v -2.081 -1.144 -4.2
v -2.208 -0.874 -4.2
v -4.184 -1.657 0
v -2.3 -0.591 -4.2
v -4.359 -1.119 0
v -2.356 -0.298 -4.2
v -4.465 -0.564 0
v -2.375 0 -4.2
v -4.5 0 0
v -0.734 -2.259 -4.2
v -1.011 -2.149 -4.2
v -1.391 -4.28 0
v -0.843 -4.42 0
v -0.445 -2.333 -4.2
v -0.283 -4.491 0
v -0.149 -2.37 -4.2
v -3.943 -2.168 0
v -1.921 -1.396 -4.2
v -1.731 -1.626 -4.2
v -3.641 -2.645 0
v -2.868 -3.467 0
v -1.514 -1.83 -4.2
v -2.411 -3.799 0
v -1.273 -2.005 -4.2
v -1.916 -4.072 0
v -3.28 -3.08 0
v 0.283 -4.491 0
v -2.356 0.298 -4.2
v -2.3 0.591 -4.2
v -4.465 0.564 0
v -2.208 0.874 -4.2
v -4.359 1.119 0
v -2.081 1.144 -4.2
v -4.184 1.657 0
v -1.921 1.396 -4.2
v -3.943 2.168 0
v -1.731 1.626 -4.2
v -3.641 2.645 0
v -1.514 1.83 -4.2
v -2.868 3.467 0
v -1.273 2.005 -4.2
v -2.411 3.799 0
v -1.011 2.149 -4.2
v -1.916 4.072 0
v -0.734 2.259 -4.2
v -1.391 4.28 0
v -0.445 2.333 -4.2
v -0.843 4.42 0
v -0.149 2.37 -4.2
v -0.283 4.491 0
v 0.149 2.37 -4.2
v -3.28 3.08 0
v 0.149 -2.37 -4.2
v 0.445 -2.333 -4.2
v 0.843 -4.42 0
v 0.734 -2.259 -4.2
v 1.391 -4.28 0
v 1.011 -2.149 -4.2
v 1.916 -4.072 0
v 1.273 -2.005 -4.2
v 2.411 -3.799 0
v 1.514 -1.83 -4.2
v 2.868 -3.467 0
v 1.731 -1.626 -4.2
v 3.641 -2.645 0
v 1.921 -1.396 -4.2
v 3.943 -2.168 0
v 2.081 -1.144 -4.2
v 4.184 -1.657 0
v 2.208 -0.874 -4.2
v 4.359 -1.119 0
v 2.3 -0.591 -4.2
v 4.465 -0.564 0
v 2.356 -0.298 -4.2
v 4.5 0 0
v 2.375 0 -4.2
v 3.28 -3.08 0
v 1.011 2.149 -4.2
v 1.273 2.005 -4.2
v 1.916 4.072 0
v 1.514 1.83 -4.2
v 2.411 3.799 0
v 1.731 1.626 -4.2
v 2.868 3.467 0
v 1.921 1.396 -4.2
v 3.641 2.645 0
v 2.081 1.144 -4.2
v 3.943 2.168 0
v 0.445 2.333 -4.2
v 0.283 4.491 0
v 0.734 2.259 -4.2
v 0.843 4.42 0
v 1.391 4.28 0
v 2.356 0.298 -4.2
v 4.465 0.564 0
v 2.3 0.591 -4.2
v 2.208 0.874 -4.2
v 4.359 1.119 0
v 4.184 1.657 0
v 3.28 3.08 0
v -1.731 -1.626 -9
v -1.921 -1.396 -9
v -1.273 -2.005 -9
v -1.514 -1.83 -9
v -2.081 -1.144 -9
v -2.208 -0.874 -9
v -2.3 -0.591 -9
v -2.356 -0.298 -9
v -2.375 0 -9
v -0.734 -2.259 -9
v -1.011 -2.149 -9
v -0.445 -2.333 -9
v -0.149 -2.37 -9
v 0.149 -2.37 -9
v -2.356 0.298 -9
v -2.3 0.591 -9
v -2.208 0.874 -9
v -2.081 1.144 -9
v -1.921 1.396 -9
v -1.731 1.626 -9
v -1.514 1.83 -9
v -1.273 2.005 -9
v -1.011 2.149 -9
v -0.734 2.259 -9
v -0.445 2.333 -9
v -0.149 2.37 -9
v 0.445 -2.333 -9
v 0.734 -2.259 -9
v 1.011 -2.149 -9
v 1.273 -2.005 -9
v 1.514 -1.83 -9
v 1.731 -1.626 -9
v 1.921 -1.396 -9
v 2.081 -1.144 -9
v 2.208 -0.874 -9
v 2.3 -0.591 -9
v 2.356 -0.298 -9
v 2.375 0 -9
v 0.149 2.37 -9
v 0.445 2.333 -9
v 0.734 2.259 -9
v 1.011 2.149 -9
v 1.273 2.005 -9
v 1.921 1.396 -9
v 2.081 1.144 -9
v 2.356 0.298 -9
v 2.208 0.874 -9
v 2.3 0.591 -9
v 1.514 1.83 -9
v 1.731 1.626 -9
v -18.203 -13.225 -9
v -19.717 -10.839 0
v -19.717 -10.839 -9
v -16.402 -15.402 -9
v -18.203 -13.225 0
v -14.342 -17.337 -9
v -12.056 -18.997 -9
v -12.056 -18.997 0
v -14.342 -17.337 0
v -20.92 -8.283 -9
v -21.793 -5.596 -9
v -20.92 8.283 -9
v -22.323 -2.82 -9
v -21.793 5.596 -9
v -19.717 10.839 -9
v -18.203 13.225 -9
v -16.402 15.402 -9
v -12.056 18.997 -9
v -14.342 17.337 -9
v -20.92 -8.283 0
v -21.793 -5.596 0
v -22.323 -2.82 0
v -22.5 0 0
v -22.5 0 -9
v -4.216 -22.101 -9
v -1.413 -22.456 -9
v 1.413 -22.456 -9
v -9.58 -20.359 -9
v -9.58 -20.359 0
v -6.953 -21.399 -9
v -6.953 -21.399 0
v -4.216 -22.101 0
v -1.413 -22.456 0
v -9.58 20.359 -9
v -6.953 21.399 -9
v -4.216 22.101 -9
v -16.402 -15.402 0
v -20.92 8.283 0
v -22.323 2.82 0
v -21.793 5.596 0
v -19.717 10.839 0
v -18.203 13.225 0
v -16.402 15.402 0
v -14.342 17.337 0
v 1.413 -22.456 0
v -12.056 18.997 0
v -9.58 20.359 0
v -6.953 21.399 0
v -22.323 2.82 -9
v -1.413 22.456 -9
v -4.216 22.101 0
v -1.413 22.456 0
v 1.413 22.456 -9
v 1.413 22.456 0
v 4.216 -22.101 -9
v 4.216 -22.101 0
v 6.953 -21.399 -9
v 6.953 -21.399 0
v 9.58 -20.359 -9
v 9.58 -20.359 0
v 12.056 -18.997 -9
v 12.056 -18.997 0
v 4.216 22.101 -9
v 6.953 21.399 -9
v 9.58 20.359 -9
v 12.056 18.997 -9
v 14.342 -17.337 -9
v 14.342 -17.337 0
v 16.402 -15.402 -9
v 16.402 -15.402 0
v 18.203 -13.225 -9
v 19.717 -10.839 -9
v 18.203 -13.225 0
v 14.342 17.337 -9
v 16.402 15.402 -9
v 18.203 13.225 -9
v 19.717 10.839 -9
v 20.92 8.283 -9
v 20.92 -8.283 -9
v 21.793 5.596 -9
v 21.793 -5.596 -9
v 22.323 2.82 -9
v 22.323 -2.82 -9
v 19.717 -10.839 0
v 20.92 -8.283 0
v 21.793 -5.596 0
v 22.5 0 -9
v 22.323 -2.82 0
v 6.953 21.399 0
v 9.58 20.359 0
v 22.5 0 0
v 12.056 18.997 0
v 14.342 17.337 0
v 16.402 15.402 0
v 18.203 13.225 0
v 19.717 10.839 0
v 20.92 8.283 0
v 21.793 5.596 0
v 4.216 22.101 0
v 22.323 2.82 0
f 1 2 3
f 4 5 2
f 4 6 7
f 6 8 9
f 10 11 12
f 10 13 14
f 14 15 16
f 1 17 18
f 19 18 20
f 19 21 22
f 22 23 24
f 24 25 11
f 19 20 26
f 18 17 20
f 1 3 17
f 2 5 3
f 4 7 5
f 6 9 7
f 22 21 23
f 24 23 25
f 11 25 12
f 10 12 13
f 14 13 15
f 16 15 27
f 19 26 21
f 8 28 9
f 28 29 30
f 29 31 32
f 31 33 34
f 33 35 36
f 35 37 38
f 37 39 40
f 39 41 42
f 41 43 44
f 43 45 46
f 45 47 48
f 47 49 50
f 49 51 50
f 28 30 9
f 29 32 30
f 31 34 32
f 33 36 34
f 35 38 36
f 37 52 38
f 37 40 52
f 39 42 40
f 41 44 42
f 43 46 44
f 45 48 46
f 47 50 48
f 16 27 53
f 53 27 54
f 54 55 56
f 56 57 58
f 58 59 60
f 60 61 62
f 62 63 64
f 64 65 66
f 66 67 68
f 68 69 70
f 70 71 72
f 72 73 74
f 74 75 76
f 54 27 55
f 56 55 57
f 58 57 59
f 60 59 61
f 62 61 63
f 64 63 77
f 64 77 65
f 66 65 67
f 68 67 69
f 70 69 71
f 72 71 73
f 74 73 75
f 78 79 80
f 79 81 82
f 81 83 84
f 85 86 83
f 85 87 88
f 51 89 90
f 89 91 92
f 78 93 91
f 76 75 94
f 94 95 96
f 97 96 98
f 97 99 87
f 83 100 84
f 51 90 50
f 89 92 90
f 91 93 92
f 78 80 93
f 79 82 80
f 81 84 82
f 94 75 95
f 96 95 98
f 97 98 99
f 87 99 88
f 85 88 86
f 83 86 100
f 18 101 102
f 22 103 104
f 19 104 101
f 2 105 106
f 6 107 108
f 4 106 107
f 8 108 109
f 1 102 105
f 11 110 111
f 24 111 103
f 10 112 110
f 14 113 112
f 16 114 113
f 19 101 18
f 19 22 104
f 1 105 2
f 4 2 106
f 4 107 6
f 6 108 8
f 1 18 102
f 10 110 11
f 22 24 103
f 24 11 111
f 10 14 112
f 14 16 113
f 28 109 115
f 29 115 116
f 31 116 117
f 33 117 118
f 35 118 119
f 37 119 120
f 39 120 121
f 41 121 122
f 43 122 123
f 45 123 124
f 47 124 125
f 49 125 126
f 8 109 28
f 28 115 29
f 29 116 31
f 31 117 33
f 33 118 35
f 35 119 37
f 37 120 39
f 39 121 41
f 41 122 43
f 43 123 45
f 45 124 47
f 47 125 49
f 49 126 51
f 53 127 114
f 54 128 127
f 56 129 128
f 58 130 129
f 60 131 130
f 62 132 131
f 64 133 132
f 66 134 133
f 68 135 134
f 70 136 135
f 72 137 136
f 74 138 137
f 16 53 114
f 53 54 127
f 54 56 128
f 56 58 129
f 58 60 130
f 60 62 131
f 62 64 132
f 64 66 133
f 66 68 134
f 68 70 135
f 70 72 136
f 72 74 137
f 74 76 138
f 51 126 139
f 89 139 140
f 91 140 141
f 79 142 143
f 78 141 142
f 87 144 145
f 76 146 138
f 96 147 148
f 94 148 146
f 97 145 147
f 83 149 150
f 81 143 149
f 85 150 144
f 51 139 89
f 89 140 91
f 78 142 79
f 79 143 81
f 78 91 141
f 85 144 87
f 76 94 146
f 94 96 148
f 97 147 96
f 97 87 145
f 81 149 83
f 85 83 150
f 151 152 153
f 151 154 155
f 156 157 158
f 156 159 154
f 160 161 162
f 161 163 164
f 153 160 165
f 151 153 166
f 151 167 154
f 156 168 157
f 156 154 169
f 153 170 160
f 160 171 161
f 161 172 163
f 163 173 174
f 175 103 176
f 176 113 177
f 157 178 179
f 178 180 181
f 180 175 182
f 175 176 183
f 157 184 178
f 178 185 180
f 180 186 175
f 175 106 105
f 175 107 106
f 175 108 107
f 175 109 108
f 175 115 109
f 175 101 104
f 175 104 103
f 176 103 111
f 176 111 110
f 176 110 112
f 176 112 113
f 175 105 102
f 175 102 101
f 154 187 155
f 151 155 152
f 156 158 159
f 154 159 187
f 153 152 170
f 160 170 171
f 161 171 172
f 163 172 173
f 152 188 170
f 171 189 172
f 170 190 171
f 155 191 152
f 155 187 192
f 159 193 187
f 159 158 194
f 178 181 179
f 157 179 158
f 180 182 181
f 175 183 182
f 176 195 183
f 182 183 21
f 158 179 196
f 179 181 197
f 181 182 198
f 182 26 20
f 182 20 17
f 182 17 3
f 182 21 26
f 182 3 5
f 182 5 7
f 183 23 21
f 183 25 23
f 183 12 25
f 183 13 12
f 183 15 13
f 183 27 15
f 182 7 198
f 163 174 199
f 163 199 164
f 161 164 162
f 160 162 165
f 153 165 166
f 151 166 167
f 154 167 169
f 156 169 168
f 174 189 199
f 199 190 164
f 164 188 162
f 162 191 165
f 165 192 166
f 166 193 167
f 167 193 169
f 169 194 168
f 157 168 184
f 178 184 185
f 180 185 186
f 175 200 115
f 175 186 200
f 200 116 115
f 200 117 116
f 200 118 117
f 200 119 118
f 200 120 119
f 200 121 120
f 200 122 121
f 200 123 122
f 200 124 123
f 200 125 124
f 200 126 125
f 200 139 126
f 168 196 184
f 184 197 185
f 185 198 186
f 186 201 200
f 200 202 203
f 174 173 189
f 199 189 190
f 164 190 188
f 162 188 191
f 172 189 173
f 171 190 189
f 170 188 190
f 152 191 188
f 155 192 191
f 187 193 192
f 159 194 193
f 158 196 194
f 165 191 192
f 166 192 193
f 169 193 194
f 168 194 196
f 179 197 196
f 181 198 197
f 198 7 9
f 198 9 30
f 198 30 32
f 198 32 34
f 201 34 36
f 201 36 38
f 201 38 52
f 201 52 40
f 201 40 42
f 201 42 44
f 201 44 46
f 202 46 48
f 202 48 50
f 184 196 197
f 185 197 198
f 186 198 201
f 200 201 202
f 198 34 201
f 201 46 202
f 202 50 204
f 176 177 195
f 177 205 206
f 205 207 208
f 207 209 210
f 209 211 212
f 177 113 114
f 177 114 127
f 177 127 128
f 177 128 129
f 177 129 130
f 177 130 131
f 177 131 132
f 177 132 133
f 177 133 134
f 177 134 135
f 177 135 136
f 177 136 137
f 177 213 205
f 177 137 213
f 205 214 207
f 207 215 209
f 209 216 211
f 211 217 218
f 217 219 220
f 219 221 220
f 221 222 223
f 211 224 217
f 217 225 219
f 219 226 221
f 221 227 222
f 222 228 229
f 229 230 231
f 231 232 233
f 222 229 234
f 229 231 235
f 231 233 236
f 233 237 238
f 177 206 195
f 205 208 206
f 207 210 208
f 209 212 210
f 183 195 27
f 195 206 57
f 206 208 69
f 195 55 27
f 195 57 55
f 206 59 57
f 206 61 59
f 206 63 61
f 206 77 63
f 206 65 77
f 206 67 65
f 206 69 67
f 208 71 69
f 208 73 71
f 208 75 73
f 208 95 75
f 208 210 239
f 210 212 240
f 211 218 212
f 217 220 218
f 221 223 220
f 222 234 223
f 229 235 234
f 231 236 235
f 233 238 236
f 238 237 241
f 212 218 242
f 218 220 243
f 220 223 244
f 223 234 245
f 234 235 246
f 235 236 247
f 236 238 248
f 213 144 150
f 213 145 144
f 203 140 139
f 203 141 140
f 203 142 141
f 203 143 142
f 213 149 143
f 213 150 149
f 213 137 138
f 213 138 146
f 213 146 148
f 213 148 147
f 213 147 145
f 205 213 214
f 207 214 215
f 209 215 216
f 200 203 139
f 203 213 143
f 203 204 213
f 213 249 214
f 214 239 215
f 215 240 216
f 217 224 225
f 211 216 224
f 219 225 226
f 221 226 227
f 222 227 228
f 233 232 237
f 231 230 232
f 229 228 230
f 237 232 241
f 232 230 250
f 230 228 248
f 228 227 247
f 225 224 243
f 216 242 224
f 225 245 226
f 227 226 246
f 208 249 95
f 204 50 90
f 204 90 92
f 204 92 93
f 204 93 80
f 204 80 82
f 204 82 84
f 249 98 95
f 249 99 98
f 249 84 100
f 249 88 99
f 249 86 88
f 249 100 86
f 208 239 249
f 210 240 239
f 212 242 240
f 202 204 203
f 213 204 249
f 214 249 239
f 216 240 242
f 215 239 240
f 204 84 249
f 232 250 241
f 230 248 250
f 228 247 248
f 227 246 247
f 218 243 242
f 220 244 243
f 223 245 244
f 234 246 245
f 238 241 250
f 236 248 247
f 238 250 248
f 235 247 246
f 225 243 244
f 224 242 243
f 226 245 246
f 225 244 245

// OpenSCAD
$fn = 50;


difference() {
	union() {
		translate(v = [0, 0, -9.0000000000]) {
			cylinder(h = 9, r = 22.5000000000);
		}
	}
	union() {
		translate(v = [0, 0, 0]) {
			rotate(a = [0, 0, 0]) {
				difference() {
					union() {
						translate(v = [0, 0, -12.0000000000]) {
							cylinder(h = 12, r = 2.2500000000);
						}
						translate(v = [0, 0, -4.2000000000]) {
							cylinder(h = 4.2000000000, r1 = 2.3750000000, r2 = 4.5000000000);
						}
						translate(v = [0, 0, -12.0000000000]) {
							cylinder(h = 12, r = 2.3750000000);
						}
						translate(v = [0, 0, -12.0000000000]) {
							cylinder(h = 12, r = 2.2500000000);
						}
					}
					union();
				}
			}
		}
	}
}
